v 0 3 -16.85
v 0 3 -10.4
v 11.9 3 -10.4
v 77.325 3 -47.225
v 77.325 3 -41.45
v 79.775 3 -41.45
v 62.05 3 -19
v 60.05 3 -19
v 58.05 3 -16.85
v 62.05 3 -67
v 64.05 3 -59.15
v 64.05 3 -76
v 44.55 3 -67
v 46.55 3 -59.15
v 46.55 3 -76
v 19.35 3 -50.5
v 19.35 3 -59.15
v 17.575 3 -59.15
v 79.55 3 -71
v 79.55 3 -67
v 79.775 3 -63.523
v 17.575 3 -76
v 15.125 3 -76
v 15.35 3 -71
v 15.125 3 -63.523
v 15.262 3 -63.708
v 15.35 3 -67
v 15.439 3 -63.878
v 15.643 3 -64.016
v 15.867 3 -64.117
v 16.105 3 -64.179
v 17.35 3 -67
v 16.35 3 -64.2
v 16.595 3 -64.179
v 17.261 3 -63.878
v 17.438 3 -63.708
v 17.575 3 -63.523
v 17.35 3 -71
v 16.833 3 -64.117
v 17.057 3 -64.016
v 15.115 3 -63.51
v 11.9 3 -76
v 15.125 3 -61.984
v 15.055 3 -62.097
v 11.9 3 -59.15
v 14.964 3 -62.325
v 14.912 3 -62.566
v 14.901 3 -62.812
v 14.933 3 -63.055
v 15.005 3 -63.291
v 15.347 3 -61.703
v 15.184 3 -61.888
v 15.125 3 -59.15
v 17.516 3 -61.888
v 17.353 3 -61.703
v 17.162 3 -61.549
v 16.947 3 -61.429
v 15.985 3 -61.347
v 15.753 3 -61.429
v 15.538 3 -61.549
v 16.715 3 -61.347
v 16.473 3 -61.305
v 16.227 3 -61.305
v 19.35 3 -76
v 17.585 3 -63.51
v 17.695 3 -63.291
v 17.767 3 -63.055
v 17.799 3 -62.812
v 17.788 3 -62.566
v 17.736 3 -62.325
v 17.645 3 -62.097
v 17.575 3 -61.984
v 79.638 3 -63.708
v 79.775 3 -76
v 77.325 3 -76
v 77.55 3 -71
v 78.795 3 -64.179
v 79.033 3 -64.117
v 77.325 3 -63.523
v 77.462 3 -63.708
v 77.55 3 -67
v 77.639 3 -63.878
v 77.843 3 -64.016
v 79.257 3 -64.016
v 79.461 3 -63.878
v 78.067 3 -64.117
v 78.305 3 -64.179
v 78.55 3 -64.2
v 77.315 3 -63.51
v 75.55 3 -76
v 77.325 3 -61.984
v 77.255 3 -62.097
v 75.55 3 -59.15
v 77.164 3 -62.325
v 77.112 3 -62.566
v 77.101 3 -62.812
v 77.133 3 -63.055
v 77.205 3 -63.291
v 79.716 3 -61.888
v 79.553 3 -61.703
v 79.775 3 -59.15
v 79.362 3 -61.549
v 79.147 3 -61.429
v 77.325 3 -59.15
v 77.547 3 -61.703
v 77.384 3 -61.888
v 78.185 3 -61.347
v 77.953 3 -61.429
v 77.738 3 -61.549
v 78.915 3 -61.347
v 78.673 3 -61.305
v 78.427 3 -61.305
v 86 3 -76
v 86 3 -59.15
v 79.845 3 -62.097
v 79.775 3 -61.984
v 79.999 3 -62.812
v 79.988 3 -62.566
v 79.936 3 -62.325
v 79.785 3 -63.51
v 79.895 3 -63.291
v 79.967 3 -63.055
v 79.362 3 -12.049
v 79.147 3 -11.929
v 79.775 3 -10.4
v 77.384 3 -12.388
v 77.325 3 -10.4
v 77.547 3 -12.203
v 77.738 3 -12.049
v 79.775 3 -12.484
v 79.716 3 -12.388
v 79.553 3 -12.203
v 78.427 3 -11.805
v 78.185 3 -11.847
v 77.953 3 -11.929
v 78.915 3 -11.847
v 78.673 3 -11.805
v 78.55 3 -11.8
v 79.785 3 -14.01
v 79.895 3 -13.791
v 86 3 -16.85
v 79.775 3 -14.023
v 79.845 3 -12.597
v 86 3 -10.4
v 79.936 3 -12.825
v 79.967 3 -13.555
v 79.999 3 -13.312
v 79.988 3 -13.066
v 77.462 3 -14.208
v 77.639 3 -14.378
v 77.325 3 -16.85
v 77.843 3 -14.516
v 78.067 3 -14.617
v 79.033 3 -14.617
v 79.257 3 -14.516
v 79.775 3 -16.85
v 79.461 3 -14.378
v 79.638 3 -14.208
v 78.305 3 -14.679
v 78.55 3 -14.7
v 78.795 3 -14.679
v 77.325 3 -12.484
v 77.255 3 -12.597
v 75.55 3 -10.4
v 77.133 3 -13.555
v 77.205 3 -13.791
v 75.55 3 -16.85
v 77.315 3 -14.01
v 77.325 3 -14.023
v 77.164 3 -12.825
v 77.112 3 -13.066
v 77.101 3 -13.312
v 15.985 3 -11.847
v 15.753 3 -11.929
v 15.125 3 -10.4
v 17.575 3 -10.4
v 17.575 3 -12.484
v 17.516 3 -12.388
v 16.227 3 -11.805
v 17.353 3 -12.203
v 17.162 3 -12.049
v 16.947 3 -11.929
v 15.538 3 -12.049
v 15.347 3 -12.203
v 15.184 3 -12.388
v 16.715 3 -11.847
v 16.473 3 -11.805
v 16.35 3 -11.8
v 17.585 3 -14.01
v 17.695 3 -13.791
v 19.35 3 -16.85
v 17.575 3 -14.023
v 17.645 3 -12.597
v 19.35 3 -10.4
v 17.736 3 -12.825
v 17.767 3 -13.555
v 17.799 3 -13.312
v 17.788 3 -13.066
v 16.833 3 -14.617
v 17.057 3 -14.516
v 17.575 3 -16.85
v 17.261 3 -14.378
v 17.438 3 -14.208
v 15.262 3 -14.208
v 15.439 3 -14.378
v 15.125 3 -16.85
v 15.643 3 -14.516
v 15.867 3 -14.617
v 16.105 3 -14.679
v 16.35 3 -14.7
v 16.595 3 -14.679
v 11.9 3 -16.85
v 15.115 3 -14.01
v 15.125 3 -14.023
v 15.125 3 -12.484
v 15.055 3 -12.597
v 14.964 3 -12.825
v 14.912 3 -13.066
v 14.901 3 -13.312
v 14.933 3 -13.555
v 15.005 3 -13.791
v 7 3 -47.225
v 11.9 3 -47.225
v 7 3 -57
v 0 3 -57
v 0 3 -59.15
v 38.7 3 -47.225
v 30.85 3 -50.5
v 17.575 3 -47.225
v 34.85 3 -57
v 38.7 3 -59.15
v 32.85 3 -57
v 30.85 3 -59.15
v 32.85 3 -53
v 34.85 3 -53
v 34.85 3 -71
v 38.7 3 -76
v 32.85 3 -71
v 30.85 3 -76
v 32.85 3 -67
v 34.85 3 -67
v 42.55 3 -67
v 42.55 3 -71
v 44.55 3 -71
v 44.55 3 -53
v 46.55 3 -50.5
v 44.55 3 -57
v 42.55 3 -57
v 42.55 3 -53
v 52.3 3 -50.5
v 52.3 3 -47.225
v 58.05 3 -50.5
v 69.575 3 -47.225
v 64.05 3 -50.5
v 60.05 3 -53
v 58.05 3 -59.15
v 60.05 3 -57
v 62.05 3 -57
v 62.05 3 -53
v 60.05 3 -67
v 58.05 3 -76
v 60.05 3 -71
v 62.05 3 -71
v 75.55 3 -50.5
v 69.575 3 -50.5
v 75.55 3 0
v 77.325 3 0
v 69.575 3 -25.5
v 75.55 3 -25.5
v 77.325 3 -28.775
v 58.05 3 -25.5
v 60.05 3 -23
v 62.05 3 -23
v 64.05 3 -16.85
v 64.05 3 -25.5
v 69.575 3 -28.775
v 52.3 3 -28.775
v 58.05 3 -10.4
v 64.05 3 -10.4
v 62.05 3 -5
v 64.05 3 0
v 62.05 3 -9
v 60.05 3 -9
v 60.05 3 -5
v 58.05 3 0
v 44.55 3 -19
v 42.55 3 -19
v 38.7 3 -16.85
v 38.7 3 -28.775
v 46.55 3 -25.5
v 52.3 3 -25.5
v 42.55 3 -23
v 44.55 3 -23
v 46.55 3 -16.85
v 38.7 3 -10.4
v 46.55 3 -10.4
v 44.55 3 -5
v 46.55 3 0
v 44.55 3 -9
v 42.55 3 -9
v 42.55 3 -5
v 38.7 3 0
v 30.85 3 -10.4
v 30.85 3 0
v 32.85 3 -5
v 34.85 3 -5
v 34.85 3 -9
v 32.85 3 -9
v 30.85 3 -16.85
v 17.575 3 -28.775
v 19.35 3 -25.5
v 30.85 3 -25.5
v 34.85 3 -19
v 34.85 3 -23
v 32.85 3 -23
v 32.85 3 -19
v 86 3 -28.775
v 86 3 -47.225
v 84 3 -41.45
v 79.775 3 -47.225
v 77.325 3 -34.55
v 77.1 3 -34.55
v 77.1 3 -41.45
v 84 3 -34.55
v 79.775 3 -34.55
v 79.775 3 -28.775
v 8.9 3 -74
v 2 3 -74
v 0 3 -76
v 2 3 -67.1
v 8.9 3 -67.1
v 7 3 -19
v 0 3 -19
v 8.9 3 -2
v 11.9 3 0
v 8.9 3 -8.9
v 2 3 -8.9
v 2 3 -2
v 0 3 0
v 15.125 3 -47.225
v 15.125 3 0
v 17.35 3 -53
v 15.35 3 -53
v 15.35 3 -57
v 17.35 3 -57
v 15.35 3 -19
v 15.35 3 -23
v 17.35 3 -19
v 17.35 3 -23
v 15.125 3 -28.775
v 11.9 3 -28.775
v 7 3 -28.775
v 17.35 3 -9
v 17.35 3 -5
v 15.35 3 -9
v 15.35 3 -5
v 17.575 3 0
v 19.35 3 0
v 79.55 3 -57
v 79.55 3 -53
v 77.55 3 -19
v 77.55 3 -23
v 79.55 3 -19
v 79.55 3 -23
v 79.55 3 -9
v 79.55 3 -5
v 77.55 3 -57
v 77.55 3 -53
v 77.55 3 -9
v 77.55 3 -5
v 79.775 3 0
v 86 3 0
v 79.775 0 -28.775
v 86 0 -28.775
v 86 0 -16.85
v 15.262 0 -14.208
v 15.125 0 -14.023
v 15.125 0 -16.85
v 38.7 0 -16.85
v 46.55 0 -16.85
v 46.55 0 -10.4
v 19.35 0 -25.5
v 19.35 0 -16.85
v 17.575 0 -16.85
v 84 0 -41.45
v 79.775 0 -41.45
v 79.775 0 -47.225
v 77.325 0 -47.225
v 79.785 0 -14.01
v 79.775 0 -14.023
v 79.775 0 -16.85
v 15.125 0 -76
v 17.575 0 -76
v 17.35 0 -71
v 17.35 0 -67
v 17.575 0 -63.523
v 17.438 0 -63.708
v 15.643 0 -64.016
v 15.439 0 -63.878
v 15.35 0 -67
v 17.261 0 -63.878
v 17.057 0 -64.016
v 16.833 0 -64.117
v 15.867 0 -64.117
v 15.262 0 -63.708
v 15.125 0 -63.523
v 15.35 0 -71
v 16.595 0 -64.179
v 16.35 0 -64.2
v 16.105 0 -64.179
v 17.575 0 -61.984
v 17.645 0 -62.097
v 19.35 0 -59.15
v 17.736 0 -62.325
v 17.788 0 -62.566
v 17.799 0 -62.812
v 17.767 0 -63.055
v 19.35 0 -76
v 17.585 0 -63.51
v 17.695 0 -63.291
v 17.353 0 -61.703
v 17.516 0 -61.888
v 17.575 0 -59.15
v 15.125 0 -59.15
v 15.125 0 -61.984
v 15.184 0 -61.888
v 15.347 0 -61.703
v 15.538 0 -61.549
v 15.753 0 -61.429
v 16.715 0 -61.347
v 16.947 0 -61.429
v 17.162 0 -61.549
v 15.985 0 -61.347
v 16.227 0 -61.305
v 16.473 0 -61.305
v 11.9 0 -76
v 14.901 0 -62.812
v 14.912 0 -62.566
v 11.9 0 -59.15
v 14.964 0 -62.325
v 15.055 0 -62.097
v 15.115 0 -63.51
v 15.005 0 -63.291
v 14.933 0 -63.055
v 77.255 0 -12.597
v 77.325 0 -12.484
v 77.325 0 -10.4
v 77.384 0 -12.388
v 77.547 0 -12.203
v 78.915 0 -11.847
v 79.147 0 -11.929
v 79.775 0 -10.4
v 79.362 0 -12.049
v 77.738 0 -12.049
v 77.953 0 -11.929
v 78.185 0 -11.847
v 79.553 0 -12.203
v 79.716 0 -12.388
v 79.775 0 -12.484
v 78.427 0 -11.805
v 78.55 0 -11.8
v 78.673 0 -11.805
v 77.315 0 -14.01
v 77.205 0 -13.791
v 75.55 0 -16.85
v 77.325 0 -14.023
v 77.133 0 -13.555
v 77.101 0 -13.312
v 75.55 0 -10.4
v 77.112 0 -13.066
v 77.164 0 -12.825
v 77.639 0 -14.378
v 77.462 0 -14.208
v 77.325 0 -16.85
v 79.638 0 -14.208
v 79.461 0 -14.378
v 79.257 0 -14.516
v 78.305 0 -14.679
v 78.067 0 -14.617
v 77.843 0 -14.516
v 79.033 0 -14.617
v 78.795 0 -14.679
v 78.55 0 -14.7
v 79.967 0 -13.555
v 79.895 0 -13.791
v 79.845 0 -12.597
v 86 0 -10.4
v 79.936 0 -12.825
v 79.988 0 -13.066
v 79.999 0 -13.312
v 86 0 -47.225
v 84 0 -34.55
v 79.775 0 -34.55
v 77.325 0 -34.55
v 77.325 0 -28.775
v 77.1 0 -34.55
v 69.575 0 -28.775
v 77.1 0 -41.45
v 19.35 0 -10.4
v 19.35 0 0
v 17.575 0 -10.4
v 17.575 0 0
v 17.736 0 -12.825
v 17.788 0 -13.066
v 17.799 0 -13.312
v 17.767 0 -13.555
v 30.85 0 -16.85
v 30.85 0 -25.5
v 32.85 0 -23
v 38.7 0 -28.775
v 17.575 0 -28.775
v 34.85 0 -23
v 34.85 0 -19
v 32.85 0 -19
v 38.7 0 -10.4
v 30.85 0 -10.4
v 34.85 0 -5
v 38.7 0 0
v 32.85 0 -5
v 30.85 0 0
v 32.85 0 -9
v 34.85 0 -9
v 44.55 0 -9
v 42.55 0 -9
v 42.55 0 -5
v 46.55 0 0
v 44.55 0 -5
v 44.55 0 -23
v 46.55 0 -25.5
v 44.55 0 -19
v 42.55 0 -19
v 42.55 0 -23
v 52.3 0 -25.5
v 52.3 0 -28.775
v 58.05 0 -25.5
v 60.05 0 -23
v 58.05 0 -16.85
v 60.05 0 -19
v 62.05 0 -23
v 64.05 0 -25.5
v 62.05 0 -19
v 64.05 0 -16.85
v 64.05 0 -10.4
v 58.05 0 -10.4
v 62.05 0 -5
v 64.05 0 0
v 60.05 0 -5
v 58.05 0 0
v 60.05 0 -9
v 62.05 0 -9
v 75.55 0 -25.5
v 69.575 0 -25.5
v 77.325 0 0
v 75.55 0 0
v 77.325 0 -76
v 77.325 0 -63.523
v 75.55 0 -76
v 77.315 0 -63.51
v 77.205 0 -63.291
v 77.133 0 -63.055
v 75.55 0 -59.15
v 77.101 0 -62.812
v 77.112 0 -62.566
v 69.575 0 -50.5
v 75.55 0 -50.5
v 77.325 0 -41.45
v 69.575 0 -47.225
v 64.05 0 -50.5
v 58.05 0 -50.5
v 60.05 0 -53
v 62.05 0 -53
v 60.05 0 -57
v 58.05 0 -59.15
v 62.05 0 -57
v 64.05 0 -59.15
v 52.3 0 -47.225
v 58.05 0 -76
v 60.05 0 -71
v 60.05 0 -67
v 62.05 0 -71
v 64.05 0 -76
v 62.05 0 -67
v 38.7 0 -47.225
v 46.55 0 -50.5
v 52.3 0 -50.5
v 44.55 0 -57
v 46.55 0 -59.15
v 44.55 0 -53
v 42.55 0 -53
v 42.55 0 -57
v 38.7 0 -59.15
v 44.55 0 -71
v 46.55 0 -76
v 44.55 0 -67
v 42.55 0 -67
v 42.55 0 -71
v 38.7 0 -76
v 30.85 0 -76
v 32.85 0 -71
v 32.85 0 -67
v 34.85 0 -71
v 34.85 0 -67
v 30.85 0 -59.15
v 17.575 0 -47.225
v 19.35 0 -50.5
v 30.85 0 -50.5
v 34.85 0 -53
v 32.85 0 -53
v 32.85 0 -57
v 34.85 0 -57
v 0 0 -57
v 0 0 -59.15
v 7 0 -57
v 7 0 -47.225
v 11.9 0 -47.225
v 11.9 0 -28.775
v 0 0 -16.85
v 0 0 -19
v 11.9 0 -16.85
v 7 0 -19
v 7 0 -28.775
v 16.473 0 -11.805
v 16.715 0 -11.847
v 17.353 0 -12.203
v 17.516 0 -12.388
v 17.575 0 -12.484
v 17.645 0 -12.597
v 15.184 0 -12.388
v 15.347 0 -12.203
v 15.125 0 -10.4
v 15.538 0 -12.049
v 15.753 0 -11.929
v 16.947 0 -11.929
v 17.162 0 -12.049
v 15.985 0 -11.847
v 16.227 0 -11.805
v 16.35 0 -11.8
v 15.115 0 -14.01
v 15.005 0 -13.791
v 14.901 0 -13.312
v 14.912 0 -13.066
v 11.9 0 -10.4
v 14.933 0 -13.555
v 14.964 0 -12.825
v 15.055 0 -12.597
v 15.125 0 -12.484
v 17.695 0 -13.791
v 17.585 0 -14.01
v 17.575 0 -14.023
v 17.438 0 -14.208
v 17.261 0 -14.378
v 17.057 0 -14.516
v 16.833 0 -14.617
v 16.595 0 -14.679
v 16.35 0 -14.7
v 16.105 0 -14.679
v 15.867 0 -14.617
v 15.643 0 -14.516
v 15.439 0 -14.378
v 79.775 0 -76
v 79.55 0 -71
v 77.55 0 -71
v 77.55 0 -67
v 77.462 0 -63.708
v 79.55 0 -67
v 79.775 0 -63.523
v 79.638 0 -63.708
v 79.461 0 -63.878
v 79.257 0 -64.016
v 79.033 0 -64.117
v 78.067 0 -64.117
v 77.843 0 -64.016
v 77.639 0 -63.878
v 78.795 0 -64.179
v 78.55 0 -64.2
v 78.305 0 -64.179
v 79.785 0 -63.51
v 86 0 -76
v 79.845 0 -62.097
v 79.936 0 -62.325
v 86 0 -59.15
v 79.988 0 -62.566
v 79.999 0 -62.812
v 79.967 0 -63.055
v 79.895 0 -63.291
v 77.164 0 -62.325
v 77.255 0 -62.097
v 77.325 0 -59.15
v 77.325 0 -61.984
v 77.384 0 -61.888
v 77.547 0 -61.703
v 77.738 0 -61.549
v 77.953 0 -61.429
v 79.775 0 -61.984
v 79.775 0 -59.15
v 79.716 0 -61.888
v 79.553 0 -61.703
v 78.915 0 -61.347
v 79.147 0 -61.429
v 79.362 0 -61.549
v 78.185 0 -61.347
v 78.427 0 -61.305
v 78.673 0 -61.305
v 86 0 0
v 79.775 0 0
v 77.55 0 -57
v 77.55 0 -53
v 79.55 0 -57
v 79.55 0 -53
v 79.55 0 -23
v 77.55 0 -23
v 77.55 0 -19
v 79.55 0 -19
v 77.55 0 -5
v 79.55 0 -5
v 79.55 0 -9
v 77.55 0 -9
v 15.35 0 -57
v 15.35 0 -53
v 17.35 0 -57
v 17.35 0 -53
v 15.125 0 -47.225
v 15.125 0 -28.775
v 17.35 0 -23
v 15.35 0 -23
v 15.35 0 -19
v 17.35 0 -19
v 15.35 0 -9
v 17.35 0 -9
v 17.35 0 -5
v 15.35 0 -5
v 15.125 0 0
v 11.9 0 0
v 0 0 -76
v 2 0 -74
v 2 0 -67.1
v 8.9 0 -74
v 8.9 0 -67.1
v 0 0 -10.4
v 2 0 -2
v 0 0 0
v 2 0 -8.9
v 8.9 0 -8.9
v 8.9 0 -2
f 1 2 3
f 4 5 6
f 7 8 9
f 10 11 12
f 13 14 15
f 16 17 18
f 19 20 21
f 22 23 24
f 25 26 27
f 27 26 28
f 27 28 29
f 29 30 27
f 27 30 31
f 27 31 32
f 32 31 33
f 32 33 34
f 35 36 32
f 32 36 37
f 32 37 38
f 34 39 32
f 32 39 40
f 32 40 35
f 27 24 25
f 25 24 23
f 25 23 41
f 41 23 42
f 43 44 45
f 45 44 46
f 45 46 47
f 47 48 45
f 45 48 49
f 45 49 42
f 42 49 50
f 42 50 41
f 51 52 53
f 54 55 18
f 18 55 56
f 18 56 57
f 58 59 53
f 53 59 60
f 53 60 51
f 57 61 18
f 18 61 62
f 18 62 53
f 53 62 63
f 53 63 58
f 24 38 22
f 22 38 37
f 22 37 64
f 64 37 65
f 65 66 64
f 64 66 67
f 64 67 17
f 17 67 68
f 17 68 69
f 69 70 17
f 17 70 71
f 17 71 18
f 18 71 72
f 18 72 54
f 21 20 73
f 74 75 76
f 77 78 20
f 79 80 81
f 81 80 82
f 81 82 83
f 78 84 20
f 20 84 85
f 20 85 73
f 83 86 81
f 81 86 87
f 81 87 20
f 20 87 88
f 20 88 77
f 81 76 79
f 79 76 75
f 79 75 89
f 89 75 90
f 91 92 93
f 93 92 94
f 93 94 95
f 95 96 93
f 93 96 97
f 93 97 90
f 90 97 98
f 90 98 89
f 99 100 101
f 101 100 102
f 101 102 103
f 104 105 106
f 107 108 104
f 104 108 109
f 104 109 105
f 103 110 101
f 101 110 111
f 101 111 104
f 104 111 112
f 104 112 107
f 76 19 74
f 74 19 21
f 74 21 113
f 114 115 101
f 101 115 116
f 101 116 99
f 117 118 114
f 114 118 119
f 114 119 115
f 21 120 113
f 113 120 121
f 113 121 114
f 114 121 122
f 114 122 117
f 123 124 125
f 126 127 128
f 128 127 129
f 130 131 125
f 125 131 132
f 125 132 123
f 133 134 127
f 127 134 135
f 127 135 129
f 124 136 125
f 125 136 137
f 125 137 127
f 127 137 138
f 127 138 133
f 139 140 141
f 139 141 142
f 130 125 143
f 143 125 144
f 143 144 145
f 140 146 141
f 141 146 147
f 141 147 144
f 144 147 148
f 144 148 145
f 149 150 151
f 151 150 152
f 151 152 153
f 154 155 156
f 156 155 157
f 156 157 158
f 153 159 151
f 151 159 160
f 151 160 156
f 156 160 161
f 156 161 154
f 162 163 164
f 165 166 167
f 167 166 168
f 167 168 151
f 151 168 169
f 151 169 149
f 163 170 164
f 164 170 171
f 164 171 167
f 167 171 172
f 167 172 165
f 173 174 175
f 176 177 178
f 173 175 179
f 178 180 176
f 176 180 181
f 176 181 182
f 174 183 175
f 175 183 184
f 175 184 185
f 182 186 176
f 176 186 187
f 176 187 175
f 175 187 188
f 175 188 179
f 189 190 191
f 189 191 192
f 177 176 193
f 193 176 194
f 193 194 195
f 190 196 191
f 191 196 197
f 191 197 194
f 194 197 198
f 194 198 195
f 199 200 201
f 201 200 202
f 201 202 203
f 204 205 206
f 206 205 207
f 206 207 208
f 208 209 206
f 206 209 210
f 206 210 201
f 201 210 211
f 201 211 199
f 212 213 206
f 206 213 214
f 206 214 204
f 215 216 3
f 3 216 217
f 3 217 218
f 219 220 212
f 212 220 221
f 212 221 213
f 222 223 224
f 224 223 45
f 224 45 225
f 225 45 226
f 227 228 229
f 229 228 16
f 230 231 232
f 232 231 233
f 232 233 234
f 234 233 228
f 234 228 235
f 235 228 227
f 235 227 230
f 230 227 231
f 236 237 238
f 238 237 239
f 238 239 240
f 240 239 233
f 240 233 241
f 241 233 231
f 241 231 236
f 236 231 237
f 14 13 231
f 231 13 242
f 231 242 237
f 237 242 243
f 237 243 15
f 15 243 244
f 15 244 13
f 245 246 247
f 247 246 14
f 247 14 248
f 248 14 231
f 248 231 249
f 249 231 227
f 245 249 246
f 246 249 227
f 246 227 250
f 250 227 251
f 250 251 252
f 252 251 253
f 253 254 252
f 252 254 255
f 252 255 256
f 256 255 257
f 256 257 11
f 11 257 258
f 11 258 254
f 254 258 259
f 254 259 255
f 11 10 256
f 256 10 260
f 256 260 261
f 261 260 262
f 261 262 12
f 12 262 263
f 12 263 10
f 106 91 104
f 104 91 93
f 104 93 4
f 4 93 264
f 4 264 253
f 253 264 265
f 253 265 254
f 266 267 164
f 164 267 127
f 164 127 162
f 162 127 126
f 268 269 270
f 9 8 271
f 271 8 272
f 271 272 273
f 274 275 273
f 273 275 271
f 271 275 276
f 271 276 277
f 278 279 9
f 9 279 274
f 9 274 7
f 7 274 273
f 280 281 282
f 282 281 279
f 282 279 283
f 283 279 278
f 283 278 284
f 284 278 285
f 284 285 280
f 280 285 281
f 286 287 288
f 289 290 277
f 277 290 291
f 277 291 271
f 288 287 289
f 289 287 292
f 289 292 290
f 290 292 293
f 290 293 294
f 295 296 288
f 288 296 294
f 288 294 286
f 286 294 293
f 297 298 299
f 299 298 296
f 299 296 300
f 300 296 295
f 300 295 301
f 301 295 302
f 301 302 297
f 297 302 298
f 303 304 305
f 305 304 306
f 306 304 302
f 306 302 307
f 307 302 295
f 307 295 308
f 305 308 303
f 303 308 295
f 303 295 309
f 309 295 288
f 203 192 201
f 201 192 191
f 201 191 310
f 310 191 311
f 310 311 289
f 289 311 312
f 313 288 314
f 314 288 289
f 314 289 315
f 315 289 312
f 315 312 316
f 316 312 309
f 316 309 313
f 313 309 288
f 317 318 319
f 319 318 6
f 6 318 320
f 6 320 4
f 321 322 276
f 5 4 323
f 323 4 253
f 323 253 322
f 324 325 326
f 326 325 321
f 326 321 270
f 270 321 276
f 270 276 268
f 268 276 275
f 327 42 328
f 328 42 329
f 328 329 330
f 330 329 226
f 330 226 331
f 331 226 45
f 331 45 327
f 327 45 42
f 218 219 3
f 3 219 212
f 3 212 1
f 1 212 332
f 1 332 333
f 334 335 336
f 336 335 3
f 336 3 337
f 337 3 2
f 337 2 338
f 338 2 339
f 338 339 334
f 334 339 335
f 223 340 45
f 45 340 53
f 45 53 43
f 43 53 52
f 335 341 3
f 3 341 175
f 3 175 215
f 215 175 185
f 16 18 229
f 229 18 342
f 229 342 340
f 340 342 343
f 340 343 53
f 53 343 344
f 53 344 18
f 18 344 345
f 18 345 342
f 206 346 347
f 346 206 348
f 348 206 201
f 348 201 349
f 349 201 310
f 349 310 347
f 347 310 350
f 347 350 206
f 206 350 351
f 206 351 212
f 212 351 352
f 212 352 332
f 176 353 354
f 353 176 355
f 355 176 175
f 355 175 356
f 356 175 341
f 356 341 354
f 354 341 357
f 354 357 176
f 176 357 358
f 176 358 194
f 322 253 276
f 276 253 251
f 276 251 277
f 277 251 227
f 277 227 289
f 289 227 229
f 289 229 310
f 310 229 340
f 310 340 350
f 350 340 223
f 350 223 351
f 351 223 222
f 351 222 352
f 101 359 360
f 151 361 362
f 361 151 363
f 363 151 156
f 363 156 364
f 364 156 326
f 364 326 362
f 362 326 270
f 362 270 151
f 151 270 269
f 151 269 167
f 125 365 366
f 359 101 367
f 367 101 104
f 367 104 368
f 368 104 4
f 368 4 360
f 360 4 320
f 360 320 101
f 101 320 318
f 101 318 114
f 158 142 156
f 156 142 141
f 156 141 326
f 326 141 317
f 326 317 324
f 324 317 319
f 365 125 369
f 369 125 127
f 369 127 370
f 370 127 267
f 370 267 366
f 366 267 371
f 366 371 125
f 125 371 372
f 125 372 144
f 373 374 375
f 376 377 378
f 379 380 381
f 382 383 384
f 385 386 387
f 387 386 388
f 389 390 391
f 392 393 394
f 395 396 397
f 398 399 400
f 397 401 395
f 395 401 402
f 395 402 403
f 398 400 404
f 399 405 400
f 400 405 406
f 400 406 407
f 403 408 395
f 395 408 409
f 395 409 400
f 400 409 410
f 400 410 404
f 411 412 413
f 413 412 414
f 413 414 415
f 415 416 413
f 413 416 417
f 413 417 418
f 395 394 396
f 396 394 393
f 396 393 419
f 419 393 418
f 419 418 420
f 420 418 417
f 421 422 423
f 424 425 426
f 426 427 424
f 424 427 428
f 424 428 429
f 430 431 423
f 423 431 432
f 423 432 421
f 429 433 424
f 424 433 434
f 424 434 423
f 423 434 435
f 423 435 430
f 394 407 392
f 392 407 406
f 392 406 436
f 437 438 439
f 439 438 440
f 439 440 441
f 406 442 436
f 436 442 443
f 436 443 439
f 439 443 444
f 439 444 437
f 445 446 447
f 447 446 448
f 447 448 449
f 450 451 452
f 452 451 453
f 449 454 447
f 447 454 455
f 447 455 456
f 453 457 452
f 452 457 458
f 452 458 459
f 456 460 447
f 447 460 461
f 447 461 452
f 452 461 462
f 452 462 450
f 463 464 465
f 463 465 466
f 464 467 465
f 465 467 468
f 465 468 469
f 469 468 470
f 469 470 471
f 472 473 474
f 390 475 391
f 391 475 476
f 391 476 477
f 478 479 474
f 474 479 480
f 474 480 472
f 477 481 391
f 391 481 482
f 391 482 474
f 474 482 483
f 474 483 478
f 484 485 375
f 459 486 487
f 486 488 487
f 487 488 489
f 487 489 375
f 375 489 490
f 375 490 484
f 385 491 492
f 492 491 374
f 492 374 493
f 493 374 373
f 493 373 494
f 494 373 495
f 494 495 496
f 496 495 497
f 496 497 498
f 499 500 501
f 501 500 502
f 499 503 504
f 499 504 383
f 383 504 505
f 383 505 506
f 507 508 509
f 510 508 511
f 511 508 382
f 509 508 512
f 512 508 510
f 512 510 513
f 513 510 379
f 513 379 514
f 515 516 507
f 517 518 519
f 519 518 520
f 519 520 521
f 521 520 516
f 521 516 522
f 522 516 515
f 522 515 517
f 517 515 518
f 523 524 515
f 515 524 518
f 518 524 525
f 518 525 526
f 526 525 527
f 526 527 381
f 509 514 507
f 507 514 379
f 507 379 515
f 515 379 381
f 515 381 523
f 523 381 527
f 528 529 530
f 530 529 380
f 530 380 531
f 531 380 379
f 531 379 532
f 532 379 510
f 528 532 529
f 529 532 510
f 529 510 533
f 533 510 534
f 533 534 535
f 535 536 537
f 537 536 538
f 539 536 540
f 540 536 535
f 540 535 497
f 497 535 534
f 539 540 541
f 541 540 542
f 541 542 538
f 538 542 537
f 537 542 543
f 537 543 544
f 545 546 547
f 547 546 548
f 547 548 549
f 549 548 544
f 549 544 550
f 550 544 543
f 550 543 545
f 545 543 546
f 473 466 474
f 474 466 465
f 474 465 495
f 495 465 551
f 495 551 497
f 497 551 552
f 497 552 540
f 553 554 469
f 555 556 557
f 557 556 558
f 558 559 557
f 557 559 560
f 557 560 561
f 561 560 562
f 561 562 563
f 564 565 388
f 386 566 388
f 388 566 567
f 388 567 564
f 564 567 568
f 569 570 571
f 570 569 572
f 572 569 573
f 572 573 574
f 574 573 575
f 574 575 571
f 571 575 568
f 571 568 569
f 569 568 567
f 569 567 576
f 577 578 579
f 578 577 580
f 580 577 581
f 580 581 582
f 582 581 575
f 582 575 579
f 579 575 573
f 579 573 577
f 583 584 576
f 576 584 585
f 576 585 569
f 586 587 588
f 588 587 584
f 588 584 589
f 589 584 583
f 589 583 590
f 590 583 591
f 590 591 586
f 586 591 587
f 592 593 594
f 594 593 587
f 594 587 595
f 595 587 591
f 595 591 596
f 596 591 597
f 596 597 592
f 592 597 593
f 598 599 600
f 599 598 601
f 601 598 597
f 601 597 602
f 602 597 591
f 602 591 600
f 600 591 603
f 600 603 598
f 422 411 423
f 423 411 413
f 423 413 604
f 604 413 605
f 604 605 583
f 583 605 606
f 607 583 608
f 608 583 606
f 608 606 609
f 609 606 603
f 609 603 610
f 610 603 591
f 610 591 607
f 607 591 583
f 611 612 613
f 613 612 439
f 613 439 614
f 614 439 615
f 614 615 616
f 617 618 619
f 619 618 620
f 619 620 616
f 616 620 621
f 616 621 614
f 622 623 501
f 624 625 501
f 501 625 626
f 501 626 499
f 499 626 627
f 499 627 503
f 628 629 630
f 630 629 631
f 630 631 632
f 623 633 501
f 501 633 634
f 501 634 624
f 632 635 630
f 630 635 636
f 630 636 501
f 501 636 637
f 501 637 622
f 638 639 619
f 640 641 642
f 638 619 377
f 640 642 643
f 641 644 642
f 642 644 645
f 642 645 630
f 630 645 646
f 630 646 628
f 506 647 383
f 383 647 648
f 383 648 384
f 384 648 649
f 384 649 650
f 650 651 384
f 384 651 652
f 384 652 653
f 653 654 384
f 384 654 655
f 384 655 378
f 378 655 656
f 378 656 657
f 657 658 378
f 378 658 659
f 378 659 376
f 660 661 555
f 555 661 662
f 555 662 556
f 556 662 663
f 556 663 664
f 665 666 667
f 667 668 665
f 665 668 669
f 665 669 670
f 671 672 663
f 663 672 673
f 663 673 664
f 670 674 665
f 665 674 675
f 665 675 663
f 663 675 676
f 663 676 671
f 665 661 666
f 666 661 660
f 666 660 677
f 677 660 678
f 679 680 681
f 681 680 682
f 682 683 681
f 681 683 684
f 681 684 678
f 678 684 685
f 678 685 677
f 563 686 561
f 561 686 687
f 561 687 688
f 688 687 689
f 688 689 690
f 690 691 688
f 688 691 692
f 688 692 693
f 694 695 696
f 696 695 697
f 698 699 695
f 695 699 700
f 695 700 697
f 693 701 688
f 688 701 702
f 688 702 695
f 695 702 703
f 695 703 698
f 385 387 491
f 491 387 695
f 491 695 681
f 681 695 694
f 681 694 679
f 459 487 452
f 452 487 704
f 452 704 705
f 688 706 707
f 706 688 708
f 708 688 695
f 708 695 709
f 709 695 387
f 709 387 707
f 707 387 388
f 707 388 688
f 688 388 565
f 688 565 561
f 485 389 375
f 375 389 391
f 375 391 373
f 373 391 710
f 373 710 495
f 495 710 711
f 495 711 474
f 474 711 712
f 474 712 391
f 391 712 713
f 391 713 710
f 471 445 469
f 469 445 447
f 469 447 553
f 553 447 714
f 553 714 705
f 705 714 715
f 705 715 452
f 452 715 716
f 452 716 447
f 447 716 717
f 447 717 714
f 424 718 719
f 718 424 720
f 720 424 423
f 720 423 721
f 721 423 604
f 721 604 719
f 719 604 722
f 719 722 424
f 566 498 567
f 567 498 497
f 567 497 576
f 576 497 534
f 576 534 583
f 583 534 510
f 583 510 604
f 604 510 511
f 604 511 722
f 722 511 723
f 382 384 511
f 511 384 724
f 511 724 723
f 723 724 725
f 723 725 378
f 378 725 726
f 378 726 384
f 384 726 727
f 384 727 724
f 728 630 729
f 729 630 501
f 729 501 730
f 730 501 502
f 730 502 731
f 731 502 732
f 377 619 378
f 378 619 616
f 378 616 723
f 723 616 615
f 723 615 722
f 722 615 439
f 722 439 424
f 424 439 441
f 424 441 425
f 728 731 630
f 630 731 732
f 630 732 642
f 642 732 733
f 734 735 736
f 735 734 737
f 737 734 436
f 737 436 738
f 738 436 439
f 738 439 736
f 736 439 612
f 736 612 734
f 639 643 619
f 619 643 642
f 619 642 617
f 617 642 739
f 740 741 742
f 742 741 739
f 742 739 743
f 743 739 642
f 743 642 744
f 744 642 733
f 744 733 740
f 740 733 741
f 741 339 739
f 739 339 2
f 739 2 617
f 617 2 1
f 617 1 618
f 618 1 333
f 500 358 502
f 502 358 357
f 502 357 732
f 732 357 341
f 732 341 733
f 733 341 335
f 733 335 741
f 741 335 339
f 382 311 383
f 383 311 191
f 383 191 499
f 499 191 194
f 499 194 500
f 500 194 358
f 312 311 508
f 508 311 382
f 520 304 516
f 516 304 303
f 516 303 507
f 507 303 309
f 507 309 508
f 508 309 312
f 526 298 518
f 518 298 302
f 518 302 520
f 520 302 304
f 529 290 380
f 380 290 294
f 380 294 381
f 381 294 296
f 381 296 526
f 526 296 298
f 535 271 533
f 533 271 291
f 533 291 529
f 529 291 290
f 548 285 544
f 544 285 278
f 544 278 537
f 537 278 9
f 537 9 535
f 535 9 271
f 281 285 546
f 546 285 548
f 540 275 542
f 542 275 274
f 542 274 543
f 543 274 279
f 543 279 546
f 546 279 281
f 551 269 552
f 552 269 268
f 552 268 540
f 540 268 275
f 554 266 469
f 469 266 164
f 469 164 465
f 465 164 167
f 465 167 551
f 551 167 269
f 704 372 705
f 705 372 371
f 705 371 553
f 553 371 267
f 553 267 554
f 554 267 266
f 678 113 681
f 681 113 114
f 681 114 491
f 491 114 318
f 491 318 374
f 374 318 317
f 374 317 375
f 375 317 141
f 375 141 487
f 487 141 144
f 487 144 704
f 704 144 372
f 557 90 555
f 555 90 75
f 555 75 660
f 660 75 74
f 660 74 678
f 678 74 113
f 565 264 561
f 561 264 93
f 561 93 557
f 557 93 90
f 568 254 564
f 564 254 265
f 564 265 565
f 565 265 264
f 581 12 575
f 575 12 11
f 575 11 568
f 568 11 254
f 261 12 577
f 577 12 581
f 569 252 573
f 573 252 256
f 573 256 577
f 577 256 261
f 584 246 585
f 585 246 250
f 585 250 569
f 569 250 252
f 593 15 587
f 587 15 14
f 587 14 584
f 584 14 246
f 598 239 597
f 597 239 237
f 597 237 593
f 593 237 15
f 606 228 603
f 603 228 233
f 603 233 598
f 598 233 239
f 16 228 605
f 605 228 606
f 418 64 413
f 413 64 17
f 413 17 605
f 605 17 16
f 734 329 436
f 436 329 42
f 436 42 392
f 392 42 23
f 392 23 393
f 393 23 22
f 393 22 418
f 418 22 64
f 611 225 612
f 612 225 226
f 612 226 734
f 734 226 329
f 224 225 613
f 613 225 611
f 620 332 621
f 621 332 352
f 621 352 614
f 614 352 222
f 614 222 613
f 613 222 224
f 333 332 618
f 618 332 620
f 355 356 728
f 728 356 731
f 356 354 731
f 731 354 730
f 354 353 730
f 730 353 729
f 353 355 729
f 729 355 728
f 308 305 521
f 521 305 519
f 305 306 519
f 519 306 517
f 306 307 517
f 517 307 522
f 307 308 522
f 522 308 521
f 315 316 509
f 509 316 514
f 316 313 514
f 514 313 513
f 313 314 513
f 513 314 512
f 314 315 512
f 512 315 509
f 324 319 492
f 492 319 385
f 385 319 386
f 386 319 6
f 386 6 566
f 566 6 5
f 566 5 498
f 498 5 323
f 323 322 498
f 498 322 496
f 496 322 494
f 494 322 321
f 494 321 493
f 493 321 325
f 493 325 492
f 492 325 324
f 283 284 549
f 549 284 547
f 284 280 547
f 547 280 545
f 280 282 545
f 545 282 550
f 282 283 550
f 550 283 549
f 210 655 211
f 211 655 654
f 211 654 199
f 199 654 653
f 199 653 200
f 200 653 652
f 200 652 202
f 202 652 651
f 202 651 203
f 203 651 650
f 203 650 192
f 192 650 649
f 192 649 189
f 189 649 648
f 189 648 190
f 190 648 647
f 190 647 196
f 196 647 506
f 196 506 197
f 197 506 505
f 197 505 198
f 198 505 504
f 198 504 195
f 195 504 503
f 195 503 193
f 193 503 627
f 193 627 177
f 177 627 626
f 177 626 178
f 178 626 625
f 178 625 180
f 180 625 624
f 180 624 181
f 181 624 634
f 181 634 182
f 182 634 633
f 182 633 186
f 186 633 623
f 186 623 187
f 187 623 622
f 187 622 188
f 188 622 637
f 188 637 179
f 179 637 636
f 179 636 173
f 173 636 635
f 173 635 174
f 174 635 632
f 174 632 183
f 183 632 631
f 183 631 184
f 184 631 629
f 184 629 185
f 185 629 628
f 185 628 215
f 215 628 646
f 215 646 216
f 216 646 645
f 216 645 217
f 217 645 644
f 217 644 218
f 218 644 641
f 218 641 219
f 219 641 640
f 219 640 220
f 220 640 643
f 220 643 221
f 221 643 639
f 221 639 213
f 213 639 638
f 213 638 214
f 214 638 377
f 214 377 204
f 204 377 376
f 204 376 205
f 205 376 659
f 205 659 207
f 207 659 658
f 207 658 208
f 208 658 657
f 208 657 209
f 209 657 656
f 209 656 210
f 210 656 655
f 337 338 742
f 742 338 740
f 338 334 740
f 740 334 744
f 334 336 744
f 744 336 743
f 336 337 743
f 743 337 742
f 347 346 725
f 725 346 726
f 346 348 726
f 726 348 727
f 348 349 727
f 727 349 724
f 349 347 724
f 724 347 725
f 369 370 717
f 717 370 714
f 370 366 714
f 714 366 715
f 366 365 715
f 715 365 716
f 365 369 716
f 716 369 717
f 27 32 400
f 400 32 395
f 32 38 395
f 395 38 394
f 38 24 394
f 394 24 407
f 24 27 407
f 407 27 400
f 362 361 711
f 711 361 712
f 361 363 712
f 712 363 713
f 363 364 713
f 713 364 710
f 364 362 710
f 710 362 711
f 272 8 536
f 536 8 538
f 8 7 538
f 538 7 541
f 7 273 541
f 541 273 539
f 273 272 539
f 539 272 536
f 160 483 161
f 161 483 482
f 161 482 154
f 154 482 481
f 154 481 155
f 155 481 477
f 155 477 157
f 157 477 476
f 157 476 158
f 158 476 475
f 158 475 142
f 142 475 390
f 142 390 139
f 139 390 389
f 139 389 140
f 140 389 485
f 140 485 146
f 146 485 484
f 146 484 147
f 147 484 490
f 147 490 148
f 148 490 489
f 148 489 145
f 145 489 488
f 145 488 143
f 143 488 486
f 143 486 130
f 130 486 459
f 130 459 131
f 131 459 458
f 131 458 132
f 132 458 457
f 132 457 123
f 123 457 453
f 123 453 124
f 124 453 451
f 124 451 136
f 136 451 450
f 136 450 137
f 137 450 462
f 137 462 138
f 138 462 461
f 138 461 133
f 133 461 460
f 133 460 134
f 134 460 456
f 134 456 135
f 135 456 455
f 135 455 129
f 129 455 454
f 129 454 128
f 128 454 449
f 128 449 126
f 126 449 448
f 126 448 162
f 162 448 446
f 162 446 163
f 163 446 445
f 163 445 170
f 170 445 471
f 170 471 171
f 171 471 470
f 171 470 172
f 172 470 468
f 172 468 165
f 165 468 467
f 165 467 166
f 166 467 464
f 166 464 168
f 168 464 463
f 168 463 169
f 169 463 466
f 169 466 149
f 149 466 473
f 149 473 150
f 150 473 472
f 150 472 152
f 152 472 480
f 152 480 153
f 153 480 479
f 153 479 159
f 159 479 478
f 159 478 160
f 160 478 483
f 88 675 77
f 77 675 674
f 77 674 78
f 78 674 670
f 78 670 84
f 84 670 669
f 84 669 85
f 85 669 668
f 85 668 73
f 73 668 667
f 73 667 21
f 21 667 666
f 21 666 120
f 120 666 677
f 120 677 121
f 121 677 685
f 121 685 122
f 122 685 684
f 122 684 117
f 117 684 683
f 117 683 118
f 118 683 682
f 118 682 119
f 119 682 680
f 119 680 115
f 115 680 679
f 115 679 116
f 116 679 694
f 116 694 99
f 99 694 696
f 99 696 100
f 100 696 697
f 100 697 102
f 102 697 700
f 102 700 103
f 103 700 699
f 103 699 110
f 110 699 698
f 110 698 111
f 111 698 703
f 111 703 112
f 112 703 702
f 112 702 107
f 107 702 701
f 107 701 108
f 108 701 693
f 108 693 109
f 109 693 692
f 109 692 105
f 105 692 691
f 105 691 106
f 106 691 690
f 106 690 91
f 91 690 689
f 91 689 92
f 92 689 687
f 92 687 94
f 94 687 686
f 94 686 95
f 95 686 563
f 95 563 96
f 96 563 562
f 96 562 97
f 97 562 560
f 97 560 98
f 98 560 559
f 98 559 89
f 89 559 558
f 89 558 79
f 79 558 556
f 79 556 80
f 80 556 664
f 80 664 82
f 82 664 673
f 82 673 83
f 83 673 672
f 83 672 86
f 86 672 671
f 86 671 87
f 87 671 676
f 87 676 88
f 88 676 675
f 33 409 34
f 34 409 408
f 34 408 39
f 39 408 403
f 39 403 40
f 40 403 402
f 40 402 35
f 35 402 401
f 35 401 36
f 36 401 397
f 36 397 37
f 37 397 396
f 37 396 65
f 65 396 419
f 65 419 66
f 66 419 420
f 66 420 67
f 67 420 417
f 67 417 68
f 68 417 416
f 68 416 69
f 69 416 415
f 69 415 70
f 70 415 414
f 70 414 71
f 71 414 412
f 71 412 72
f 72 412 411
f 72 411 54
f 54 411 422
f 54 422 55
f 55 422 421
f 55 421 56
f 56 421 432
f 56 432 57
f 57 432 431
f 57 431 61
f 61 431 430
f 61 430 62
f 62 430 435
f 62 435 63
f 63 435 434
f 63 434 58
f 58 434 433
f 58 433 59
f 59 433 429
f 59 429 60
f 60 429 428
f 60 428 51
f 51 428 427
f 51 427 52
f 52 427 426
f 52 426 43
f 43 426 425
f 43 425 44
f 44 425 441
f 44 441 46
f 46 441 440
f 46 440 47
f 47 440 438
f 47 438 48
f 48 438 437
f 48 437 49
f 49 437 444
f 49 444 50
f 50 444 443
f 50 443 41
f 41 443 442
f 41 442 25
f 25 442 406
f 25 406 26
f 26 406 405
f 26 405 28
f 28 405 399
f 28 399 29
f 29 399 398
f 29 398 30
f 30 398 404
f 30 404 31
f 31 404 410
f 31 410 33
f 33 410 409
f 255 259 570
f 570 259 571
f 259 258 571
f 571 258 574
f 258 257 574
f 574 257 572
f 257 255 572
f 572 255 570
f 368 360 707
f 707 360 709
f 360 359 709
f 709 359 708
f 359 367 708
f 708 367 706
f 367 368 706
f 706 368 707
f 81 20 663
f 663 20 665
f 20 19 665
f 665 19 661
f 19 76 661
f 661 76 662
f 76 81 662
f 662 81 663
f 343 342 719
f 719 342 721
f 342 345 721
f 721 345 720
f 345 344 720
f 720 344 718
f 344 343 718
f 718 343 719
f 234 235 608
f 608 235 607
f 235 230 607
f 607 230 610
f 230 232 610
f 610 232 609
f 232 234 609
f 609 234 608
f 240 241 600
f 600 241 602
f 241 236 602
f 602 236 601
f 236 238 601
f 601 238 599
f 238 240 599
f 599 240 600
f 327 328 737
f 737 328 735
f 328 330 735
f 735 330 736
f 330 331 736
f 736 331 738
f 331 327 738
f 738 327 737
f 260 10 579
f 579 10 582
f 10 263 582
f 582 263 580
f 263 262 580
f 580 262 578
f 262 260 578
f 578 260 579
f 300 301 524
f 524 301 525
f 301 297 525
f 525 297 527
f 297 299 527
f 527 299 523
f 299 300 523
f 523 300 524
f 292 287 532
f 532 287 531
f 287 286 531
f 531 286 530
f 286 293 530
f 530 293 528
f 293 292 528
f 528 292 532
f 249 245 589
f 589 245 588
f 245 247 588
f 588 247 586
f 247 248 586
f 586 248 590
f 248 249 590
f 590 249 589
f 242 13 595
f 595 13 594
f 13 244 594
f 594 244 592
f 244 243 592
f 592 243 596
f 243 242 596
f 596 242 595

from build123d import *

# Parameters (mm, degrees)
ESQUISSE1_R        = 1.45
ESQUISSE1_W        = 2
ESQUISSE1_H        = 4
ESQUISSE1_W_2      = 6.9
ESQUISSE1_H_2      = 6.9
BOSS_EXTRU_1_DEPTH = 3


with BuildPart() as part:
    # Esquisse1 → Boss.-Extru.1 (new body)
    with BuildSketch(Plane(origin=(0, 0, 0), x_dir=(1, 0, 0), z_dir=(0, 1, 0))):
        Polygon((30.85, 0), (46.55, 0), (46.55, 25.5), (58.05, 25.5), (58.05, 0), (64.05, 0), (64.05, 25.5), (75.55, 25.5), (75.55, 0), (86, 0), (86, 76), (75.55, 76), (75.55, 50.5), (64.05, 50.5), (64.05, 76), (58.05, 76), (58.05, 50.5), (46.55, 50.5), (46.55, 76), (30.85, 76), (30.85, 50.5), (19.35, 50.5), (19.35, 76), (0, 76), (0, 57), (7, 57), (7, 19), (0, 19), (0, 0), (19.35, 0), (19.35, 25.5), (30.85, 25.5), align=None)
        with Locations(Location((16.35, 13.25, 0), (0, 0, 270))):
            Circle(ESQUISSE1_R, mode=Mode.SUBTRACT)
        with Locations(Location((78.55, 13.25, 0), (0, 0, 270))):
            Circle(ESQUISSE1_R, mode=Mode.SUBTRACT)
        with Locations(Location((78.55, 62.75, 0), (0, 0, 90))):
            Circle(ESQUISSE1_R, mode=Mode.SUBTRACT)
        with Locations(Location((16.35, 62.75, 0), (0, 0, 90))):
            Circle(ESQUISSE1_R, mode=Mode.SUBTRACT)
        with Locations((61.05, 7)):
            Rectangle(ESQUISSE1_W, ESQUISSE1_H, mode=Mode.SUBTRACT)
        with Locations((16.35, 7)):
            Rectangle(ESQUISSE1_W, ESQUISSE1_H, mode=Mode.SUBTRACT)
        with Locations((80.55, 38)):
            Rectangle(ESQUISSE1_W_2, ESQUISSE1_H_2, mode=Mode.SUBTRACT)
        with Locations((33.85, 7)):
            Rectangle(ESQUISSE1_W, ESQUISSE1_H, mode=Mode.SUBTRACT)
        with Locations((5.45, 5.45)):
            Rectangle(ESQUISSE1_W_2, ESQUISSE1_H_2, mode=Mode.SUBTRACT)
        with Locations((33.85, 21)):
            Rectangle(ESQUISSE1_W, ESQUISSE1_H, mode=Mode.SUBTRACT)
        with Locations((16.35, 21)):
            Rectangle(ESQUISSE1_W, ESQUISSE1_H, mode=Mode.SUBTRACT)
        with Locations((78.55, 7)):
            Rectangle(ESQUISSE1_W, ESQUISSE1_H, mode=Mode.SUBTRACT)
        with Locations((78.55, 21)):
            Rectangle(ESQUISSE1_W, ESQUISSE1_H, mode=Mode.SUBTRACT)
        with Locations((61.05, 21)):
            Rectangle(ESQUISSE1_W, ESQUISSE1_H, mode=Mode.SUBTRACT)
        with Locations((61.05, 55)):
            Rectangle(ESQUISSE1_W, ESQUISSE1_H, mode=Mode.SUBTRACT)
        with Locations((78.55, 55)):
            Rectangle(ESQUISSE1_W, ESQUISSE1_H, mode=Mode.SUBTRACT)
        with Locations((78.55, 69)):
            Rectangle(ESQUISSE1_W, ESQUISSE1_H, mode=Mode.SUBTRACT)
        with Locations((16.35, 55)):
            Rectangle(ESQUISSE1_W, ESQUISSE1_H, mode=Mode.SUBTRACT)
        with Locations((33.85, 55)):
            Rectangle(ESQUISSE1_W, ESQUISSE1_H, mode=Mode.SUBTRACT)
        with Locations((33.85, 69)):
            Rectangle(ESQUISSE1_W, ESQUISSE1_H, mode=Mode.SUBTRACT)
        with Locations((5.45, 70.55)):
            Rectangle(ESQUISSE1_W_2, ESQUISSE1_H_2, mode=Mode.SUBTRACT)
        with Locations((61.05, 69)):
            Rectangle(ESQUISSE1_W, ESQUISSE1_H, mode=Mode.SUBTRACT)
        with Locations((16.35, 69)):
            Rectangle(ESQUISSE1_W, ESQUISSE1_H, mode=Mode.SUBTRACT)
        with Locations((43.55, 55)):
            Rectangle(ESQUISSE1_W, ESQUISSE1_H, mode=Mode.SUBTRACT)
        with Locations((43.55, 7)):
            Rectangle(ESQUISSE1_W, ESQUISSE1_H, mode=Mode.SUBTRACT)
        with Locations((43.55, 21)):
            Rectangle(ESQUISSE1_W, ESQUISSE1_H, mode=Mode.SUBTRACT)
        with Locations((43.55, 69)):
            Rectangle(ESQUISSE1_W, ESQUISSE1_H, mode=Mode.SUBTRACT)
    extrude(amount=BOSS_EXTRU_1_DEPTH)


solid = part.part
